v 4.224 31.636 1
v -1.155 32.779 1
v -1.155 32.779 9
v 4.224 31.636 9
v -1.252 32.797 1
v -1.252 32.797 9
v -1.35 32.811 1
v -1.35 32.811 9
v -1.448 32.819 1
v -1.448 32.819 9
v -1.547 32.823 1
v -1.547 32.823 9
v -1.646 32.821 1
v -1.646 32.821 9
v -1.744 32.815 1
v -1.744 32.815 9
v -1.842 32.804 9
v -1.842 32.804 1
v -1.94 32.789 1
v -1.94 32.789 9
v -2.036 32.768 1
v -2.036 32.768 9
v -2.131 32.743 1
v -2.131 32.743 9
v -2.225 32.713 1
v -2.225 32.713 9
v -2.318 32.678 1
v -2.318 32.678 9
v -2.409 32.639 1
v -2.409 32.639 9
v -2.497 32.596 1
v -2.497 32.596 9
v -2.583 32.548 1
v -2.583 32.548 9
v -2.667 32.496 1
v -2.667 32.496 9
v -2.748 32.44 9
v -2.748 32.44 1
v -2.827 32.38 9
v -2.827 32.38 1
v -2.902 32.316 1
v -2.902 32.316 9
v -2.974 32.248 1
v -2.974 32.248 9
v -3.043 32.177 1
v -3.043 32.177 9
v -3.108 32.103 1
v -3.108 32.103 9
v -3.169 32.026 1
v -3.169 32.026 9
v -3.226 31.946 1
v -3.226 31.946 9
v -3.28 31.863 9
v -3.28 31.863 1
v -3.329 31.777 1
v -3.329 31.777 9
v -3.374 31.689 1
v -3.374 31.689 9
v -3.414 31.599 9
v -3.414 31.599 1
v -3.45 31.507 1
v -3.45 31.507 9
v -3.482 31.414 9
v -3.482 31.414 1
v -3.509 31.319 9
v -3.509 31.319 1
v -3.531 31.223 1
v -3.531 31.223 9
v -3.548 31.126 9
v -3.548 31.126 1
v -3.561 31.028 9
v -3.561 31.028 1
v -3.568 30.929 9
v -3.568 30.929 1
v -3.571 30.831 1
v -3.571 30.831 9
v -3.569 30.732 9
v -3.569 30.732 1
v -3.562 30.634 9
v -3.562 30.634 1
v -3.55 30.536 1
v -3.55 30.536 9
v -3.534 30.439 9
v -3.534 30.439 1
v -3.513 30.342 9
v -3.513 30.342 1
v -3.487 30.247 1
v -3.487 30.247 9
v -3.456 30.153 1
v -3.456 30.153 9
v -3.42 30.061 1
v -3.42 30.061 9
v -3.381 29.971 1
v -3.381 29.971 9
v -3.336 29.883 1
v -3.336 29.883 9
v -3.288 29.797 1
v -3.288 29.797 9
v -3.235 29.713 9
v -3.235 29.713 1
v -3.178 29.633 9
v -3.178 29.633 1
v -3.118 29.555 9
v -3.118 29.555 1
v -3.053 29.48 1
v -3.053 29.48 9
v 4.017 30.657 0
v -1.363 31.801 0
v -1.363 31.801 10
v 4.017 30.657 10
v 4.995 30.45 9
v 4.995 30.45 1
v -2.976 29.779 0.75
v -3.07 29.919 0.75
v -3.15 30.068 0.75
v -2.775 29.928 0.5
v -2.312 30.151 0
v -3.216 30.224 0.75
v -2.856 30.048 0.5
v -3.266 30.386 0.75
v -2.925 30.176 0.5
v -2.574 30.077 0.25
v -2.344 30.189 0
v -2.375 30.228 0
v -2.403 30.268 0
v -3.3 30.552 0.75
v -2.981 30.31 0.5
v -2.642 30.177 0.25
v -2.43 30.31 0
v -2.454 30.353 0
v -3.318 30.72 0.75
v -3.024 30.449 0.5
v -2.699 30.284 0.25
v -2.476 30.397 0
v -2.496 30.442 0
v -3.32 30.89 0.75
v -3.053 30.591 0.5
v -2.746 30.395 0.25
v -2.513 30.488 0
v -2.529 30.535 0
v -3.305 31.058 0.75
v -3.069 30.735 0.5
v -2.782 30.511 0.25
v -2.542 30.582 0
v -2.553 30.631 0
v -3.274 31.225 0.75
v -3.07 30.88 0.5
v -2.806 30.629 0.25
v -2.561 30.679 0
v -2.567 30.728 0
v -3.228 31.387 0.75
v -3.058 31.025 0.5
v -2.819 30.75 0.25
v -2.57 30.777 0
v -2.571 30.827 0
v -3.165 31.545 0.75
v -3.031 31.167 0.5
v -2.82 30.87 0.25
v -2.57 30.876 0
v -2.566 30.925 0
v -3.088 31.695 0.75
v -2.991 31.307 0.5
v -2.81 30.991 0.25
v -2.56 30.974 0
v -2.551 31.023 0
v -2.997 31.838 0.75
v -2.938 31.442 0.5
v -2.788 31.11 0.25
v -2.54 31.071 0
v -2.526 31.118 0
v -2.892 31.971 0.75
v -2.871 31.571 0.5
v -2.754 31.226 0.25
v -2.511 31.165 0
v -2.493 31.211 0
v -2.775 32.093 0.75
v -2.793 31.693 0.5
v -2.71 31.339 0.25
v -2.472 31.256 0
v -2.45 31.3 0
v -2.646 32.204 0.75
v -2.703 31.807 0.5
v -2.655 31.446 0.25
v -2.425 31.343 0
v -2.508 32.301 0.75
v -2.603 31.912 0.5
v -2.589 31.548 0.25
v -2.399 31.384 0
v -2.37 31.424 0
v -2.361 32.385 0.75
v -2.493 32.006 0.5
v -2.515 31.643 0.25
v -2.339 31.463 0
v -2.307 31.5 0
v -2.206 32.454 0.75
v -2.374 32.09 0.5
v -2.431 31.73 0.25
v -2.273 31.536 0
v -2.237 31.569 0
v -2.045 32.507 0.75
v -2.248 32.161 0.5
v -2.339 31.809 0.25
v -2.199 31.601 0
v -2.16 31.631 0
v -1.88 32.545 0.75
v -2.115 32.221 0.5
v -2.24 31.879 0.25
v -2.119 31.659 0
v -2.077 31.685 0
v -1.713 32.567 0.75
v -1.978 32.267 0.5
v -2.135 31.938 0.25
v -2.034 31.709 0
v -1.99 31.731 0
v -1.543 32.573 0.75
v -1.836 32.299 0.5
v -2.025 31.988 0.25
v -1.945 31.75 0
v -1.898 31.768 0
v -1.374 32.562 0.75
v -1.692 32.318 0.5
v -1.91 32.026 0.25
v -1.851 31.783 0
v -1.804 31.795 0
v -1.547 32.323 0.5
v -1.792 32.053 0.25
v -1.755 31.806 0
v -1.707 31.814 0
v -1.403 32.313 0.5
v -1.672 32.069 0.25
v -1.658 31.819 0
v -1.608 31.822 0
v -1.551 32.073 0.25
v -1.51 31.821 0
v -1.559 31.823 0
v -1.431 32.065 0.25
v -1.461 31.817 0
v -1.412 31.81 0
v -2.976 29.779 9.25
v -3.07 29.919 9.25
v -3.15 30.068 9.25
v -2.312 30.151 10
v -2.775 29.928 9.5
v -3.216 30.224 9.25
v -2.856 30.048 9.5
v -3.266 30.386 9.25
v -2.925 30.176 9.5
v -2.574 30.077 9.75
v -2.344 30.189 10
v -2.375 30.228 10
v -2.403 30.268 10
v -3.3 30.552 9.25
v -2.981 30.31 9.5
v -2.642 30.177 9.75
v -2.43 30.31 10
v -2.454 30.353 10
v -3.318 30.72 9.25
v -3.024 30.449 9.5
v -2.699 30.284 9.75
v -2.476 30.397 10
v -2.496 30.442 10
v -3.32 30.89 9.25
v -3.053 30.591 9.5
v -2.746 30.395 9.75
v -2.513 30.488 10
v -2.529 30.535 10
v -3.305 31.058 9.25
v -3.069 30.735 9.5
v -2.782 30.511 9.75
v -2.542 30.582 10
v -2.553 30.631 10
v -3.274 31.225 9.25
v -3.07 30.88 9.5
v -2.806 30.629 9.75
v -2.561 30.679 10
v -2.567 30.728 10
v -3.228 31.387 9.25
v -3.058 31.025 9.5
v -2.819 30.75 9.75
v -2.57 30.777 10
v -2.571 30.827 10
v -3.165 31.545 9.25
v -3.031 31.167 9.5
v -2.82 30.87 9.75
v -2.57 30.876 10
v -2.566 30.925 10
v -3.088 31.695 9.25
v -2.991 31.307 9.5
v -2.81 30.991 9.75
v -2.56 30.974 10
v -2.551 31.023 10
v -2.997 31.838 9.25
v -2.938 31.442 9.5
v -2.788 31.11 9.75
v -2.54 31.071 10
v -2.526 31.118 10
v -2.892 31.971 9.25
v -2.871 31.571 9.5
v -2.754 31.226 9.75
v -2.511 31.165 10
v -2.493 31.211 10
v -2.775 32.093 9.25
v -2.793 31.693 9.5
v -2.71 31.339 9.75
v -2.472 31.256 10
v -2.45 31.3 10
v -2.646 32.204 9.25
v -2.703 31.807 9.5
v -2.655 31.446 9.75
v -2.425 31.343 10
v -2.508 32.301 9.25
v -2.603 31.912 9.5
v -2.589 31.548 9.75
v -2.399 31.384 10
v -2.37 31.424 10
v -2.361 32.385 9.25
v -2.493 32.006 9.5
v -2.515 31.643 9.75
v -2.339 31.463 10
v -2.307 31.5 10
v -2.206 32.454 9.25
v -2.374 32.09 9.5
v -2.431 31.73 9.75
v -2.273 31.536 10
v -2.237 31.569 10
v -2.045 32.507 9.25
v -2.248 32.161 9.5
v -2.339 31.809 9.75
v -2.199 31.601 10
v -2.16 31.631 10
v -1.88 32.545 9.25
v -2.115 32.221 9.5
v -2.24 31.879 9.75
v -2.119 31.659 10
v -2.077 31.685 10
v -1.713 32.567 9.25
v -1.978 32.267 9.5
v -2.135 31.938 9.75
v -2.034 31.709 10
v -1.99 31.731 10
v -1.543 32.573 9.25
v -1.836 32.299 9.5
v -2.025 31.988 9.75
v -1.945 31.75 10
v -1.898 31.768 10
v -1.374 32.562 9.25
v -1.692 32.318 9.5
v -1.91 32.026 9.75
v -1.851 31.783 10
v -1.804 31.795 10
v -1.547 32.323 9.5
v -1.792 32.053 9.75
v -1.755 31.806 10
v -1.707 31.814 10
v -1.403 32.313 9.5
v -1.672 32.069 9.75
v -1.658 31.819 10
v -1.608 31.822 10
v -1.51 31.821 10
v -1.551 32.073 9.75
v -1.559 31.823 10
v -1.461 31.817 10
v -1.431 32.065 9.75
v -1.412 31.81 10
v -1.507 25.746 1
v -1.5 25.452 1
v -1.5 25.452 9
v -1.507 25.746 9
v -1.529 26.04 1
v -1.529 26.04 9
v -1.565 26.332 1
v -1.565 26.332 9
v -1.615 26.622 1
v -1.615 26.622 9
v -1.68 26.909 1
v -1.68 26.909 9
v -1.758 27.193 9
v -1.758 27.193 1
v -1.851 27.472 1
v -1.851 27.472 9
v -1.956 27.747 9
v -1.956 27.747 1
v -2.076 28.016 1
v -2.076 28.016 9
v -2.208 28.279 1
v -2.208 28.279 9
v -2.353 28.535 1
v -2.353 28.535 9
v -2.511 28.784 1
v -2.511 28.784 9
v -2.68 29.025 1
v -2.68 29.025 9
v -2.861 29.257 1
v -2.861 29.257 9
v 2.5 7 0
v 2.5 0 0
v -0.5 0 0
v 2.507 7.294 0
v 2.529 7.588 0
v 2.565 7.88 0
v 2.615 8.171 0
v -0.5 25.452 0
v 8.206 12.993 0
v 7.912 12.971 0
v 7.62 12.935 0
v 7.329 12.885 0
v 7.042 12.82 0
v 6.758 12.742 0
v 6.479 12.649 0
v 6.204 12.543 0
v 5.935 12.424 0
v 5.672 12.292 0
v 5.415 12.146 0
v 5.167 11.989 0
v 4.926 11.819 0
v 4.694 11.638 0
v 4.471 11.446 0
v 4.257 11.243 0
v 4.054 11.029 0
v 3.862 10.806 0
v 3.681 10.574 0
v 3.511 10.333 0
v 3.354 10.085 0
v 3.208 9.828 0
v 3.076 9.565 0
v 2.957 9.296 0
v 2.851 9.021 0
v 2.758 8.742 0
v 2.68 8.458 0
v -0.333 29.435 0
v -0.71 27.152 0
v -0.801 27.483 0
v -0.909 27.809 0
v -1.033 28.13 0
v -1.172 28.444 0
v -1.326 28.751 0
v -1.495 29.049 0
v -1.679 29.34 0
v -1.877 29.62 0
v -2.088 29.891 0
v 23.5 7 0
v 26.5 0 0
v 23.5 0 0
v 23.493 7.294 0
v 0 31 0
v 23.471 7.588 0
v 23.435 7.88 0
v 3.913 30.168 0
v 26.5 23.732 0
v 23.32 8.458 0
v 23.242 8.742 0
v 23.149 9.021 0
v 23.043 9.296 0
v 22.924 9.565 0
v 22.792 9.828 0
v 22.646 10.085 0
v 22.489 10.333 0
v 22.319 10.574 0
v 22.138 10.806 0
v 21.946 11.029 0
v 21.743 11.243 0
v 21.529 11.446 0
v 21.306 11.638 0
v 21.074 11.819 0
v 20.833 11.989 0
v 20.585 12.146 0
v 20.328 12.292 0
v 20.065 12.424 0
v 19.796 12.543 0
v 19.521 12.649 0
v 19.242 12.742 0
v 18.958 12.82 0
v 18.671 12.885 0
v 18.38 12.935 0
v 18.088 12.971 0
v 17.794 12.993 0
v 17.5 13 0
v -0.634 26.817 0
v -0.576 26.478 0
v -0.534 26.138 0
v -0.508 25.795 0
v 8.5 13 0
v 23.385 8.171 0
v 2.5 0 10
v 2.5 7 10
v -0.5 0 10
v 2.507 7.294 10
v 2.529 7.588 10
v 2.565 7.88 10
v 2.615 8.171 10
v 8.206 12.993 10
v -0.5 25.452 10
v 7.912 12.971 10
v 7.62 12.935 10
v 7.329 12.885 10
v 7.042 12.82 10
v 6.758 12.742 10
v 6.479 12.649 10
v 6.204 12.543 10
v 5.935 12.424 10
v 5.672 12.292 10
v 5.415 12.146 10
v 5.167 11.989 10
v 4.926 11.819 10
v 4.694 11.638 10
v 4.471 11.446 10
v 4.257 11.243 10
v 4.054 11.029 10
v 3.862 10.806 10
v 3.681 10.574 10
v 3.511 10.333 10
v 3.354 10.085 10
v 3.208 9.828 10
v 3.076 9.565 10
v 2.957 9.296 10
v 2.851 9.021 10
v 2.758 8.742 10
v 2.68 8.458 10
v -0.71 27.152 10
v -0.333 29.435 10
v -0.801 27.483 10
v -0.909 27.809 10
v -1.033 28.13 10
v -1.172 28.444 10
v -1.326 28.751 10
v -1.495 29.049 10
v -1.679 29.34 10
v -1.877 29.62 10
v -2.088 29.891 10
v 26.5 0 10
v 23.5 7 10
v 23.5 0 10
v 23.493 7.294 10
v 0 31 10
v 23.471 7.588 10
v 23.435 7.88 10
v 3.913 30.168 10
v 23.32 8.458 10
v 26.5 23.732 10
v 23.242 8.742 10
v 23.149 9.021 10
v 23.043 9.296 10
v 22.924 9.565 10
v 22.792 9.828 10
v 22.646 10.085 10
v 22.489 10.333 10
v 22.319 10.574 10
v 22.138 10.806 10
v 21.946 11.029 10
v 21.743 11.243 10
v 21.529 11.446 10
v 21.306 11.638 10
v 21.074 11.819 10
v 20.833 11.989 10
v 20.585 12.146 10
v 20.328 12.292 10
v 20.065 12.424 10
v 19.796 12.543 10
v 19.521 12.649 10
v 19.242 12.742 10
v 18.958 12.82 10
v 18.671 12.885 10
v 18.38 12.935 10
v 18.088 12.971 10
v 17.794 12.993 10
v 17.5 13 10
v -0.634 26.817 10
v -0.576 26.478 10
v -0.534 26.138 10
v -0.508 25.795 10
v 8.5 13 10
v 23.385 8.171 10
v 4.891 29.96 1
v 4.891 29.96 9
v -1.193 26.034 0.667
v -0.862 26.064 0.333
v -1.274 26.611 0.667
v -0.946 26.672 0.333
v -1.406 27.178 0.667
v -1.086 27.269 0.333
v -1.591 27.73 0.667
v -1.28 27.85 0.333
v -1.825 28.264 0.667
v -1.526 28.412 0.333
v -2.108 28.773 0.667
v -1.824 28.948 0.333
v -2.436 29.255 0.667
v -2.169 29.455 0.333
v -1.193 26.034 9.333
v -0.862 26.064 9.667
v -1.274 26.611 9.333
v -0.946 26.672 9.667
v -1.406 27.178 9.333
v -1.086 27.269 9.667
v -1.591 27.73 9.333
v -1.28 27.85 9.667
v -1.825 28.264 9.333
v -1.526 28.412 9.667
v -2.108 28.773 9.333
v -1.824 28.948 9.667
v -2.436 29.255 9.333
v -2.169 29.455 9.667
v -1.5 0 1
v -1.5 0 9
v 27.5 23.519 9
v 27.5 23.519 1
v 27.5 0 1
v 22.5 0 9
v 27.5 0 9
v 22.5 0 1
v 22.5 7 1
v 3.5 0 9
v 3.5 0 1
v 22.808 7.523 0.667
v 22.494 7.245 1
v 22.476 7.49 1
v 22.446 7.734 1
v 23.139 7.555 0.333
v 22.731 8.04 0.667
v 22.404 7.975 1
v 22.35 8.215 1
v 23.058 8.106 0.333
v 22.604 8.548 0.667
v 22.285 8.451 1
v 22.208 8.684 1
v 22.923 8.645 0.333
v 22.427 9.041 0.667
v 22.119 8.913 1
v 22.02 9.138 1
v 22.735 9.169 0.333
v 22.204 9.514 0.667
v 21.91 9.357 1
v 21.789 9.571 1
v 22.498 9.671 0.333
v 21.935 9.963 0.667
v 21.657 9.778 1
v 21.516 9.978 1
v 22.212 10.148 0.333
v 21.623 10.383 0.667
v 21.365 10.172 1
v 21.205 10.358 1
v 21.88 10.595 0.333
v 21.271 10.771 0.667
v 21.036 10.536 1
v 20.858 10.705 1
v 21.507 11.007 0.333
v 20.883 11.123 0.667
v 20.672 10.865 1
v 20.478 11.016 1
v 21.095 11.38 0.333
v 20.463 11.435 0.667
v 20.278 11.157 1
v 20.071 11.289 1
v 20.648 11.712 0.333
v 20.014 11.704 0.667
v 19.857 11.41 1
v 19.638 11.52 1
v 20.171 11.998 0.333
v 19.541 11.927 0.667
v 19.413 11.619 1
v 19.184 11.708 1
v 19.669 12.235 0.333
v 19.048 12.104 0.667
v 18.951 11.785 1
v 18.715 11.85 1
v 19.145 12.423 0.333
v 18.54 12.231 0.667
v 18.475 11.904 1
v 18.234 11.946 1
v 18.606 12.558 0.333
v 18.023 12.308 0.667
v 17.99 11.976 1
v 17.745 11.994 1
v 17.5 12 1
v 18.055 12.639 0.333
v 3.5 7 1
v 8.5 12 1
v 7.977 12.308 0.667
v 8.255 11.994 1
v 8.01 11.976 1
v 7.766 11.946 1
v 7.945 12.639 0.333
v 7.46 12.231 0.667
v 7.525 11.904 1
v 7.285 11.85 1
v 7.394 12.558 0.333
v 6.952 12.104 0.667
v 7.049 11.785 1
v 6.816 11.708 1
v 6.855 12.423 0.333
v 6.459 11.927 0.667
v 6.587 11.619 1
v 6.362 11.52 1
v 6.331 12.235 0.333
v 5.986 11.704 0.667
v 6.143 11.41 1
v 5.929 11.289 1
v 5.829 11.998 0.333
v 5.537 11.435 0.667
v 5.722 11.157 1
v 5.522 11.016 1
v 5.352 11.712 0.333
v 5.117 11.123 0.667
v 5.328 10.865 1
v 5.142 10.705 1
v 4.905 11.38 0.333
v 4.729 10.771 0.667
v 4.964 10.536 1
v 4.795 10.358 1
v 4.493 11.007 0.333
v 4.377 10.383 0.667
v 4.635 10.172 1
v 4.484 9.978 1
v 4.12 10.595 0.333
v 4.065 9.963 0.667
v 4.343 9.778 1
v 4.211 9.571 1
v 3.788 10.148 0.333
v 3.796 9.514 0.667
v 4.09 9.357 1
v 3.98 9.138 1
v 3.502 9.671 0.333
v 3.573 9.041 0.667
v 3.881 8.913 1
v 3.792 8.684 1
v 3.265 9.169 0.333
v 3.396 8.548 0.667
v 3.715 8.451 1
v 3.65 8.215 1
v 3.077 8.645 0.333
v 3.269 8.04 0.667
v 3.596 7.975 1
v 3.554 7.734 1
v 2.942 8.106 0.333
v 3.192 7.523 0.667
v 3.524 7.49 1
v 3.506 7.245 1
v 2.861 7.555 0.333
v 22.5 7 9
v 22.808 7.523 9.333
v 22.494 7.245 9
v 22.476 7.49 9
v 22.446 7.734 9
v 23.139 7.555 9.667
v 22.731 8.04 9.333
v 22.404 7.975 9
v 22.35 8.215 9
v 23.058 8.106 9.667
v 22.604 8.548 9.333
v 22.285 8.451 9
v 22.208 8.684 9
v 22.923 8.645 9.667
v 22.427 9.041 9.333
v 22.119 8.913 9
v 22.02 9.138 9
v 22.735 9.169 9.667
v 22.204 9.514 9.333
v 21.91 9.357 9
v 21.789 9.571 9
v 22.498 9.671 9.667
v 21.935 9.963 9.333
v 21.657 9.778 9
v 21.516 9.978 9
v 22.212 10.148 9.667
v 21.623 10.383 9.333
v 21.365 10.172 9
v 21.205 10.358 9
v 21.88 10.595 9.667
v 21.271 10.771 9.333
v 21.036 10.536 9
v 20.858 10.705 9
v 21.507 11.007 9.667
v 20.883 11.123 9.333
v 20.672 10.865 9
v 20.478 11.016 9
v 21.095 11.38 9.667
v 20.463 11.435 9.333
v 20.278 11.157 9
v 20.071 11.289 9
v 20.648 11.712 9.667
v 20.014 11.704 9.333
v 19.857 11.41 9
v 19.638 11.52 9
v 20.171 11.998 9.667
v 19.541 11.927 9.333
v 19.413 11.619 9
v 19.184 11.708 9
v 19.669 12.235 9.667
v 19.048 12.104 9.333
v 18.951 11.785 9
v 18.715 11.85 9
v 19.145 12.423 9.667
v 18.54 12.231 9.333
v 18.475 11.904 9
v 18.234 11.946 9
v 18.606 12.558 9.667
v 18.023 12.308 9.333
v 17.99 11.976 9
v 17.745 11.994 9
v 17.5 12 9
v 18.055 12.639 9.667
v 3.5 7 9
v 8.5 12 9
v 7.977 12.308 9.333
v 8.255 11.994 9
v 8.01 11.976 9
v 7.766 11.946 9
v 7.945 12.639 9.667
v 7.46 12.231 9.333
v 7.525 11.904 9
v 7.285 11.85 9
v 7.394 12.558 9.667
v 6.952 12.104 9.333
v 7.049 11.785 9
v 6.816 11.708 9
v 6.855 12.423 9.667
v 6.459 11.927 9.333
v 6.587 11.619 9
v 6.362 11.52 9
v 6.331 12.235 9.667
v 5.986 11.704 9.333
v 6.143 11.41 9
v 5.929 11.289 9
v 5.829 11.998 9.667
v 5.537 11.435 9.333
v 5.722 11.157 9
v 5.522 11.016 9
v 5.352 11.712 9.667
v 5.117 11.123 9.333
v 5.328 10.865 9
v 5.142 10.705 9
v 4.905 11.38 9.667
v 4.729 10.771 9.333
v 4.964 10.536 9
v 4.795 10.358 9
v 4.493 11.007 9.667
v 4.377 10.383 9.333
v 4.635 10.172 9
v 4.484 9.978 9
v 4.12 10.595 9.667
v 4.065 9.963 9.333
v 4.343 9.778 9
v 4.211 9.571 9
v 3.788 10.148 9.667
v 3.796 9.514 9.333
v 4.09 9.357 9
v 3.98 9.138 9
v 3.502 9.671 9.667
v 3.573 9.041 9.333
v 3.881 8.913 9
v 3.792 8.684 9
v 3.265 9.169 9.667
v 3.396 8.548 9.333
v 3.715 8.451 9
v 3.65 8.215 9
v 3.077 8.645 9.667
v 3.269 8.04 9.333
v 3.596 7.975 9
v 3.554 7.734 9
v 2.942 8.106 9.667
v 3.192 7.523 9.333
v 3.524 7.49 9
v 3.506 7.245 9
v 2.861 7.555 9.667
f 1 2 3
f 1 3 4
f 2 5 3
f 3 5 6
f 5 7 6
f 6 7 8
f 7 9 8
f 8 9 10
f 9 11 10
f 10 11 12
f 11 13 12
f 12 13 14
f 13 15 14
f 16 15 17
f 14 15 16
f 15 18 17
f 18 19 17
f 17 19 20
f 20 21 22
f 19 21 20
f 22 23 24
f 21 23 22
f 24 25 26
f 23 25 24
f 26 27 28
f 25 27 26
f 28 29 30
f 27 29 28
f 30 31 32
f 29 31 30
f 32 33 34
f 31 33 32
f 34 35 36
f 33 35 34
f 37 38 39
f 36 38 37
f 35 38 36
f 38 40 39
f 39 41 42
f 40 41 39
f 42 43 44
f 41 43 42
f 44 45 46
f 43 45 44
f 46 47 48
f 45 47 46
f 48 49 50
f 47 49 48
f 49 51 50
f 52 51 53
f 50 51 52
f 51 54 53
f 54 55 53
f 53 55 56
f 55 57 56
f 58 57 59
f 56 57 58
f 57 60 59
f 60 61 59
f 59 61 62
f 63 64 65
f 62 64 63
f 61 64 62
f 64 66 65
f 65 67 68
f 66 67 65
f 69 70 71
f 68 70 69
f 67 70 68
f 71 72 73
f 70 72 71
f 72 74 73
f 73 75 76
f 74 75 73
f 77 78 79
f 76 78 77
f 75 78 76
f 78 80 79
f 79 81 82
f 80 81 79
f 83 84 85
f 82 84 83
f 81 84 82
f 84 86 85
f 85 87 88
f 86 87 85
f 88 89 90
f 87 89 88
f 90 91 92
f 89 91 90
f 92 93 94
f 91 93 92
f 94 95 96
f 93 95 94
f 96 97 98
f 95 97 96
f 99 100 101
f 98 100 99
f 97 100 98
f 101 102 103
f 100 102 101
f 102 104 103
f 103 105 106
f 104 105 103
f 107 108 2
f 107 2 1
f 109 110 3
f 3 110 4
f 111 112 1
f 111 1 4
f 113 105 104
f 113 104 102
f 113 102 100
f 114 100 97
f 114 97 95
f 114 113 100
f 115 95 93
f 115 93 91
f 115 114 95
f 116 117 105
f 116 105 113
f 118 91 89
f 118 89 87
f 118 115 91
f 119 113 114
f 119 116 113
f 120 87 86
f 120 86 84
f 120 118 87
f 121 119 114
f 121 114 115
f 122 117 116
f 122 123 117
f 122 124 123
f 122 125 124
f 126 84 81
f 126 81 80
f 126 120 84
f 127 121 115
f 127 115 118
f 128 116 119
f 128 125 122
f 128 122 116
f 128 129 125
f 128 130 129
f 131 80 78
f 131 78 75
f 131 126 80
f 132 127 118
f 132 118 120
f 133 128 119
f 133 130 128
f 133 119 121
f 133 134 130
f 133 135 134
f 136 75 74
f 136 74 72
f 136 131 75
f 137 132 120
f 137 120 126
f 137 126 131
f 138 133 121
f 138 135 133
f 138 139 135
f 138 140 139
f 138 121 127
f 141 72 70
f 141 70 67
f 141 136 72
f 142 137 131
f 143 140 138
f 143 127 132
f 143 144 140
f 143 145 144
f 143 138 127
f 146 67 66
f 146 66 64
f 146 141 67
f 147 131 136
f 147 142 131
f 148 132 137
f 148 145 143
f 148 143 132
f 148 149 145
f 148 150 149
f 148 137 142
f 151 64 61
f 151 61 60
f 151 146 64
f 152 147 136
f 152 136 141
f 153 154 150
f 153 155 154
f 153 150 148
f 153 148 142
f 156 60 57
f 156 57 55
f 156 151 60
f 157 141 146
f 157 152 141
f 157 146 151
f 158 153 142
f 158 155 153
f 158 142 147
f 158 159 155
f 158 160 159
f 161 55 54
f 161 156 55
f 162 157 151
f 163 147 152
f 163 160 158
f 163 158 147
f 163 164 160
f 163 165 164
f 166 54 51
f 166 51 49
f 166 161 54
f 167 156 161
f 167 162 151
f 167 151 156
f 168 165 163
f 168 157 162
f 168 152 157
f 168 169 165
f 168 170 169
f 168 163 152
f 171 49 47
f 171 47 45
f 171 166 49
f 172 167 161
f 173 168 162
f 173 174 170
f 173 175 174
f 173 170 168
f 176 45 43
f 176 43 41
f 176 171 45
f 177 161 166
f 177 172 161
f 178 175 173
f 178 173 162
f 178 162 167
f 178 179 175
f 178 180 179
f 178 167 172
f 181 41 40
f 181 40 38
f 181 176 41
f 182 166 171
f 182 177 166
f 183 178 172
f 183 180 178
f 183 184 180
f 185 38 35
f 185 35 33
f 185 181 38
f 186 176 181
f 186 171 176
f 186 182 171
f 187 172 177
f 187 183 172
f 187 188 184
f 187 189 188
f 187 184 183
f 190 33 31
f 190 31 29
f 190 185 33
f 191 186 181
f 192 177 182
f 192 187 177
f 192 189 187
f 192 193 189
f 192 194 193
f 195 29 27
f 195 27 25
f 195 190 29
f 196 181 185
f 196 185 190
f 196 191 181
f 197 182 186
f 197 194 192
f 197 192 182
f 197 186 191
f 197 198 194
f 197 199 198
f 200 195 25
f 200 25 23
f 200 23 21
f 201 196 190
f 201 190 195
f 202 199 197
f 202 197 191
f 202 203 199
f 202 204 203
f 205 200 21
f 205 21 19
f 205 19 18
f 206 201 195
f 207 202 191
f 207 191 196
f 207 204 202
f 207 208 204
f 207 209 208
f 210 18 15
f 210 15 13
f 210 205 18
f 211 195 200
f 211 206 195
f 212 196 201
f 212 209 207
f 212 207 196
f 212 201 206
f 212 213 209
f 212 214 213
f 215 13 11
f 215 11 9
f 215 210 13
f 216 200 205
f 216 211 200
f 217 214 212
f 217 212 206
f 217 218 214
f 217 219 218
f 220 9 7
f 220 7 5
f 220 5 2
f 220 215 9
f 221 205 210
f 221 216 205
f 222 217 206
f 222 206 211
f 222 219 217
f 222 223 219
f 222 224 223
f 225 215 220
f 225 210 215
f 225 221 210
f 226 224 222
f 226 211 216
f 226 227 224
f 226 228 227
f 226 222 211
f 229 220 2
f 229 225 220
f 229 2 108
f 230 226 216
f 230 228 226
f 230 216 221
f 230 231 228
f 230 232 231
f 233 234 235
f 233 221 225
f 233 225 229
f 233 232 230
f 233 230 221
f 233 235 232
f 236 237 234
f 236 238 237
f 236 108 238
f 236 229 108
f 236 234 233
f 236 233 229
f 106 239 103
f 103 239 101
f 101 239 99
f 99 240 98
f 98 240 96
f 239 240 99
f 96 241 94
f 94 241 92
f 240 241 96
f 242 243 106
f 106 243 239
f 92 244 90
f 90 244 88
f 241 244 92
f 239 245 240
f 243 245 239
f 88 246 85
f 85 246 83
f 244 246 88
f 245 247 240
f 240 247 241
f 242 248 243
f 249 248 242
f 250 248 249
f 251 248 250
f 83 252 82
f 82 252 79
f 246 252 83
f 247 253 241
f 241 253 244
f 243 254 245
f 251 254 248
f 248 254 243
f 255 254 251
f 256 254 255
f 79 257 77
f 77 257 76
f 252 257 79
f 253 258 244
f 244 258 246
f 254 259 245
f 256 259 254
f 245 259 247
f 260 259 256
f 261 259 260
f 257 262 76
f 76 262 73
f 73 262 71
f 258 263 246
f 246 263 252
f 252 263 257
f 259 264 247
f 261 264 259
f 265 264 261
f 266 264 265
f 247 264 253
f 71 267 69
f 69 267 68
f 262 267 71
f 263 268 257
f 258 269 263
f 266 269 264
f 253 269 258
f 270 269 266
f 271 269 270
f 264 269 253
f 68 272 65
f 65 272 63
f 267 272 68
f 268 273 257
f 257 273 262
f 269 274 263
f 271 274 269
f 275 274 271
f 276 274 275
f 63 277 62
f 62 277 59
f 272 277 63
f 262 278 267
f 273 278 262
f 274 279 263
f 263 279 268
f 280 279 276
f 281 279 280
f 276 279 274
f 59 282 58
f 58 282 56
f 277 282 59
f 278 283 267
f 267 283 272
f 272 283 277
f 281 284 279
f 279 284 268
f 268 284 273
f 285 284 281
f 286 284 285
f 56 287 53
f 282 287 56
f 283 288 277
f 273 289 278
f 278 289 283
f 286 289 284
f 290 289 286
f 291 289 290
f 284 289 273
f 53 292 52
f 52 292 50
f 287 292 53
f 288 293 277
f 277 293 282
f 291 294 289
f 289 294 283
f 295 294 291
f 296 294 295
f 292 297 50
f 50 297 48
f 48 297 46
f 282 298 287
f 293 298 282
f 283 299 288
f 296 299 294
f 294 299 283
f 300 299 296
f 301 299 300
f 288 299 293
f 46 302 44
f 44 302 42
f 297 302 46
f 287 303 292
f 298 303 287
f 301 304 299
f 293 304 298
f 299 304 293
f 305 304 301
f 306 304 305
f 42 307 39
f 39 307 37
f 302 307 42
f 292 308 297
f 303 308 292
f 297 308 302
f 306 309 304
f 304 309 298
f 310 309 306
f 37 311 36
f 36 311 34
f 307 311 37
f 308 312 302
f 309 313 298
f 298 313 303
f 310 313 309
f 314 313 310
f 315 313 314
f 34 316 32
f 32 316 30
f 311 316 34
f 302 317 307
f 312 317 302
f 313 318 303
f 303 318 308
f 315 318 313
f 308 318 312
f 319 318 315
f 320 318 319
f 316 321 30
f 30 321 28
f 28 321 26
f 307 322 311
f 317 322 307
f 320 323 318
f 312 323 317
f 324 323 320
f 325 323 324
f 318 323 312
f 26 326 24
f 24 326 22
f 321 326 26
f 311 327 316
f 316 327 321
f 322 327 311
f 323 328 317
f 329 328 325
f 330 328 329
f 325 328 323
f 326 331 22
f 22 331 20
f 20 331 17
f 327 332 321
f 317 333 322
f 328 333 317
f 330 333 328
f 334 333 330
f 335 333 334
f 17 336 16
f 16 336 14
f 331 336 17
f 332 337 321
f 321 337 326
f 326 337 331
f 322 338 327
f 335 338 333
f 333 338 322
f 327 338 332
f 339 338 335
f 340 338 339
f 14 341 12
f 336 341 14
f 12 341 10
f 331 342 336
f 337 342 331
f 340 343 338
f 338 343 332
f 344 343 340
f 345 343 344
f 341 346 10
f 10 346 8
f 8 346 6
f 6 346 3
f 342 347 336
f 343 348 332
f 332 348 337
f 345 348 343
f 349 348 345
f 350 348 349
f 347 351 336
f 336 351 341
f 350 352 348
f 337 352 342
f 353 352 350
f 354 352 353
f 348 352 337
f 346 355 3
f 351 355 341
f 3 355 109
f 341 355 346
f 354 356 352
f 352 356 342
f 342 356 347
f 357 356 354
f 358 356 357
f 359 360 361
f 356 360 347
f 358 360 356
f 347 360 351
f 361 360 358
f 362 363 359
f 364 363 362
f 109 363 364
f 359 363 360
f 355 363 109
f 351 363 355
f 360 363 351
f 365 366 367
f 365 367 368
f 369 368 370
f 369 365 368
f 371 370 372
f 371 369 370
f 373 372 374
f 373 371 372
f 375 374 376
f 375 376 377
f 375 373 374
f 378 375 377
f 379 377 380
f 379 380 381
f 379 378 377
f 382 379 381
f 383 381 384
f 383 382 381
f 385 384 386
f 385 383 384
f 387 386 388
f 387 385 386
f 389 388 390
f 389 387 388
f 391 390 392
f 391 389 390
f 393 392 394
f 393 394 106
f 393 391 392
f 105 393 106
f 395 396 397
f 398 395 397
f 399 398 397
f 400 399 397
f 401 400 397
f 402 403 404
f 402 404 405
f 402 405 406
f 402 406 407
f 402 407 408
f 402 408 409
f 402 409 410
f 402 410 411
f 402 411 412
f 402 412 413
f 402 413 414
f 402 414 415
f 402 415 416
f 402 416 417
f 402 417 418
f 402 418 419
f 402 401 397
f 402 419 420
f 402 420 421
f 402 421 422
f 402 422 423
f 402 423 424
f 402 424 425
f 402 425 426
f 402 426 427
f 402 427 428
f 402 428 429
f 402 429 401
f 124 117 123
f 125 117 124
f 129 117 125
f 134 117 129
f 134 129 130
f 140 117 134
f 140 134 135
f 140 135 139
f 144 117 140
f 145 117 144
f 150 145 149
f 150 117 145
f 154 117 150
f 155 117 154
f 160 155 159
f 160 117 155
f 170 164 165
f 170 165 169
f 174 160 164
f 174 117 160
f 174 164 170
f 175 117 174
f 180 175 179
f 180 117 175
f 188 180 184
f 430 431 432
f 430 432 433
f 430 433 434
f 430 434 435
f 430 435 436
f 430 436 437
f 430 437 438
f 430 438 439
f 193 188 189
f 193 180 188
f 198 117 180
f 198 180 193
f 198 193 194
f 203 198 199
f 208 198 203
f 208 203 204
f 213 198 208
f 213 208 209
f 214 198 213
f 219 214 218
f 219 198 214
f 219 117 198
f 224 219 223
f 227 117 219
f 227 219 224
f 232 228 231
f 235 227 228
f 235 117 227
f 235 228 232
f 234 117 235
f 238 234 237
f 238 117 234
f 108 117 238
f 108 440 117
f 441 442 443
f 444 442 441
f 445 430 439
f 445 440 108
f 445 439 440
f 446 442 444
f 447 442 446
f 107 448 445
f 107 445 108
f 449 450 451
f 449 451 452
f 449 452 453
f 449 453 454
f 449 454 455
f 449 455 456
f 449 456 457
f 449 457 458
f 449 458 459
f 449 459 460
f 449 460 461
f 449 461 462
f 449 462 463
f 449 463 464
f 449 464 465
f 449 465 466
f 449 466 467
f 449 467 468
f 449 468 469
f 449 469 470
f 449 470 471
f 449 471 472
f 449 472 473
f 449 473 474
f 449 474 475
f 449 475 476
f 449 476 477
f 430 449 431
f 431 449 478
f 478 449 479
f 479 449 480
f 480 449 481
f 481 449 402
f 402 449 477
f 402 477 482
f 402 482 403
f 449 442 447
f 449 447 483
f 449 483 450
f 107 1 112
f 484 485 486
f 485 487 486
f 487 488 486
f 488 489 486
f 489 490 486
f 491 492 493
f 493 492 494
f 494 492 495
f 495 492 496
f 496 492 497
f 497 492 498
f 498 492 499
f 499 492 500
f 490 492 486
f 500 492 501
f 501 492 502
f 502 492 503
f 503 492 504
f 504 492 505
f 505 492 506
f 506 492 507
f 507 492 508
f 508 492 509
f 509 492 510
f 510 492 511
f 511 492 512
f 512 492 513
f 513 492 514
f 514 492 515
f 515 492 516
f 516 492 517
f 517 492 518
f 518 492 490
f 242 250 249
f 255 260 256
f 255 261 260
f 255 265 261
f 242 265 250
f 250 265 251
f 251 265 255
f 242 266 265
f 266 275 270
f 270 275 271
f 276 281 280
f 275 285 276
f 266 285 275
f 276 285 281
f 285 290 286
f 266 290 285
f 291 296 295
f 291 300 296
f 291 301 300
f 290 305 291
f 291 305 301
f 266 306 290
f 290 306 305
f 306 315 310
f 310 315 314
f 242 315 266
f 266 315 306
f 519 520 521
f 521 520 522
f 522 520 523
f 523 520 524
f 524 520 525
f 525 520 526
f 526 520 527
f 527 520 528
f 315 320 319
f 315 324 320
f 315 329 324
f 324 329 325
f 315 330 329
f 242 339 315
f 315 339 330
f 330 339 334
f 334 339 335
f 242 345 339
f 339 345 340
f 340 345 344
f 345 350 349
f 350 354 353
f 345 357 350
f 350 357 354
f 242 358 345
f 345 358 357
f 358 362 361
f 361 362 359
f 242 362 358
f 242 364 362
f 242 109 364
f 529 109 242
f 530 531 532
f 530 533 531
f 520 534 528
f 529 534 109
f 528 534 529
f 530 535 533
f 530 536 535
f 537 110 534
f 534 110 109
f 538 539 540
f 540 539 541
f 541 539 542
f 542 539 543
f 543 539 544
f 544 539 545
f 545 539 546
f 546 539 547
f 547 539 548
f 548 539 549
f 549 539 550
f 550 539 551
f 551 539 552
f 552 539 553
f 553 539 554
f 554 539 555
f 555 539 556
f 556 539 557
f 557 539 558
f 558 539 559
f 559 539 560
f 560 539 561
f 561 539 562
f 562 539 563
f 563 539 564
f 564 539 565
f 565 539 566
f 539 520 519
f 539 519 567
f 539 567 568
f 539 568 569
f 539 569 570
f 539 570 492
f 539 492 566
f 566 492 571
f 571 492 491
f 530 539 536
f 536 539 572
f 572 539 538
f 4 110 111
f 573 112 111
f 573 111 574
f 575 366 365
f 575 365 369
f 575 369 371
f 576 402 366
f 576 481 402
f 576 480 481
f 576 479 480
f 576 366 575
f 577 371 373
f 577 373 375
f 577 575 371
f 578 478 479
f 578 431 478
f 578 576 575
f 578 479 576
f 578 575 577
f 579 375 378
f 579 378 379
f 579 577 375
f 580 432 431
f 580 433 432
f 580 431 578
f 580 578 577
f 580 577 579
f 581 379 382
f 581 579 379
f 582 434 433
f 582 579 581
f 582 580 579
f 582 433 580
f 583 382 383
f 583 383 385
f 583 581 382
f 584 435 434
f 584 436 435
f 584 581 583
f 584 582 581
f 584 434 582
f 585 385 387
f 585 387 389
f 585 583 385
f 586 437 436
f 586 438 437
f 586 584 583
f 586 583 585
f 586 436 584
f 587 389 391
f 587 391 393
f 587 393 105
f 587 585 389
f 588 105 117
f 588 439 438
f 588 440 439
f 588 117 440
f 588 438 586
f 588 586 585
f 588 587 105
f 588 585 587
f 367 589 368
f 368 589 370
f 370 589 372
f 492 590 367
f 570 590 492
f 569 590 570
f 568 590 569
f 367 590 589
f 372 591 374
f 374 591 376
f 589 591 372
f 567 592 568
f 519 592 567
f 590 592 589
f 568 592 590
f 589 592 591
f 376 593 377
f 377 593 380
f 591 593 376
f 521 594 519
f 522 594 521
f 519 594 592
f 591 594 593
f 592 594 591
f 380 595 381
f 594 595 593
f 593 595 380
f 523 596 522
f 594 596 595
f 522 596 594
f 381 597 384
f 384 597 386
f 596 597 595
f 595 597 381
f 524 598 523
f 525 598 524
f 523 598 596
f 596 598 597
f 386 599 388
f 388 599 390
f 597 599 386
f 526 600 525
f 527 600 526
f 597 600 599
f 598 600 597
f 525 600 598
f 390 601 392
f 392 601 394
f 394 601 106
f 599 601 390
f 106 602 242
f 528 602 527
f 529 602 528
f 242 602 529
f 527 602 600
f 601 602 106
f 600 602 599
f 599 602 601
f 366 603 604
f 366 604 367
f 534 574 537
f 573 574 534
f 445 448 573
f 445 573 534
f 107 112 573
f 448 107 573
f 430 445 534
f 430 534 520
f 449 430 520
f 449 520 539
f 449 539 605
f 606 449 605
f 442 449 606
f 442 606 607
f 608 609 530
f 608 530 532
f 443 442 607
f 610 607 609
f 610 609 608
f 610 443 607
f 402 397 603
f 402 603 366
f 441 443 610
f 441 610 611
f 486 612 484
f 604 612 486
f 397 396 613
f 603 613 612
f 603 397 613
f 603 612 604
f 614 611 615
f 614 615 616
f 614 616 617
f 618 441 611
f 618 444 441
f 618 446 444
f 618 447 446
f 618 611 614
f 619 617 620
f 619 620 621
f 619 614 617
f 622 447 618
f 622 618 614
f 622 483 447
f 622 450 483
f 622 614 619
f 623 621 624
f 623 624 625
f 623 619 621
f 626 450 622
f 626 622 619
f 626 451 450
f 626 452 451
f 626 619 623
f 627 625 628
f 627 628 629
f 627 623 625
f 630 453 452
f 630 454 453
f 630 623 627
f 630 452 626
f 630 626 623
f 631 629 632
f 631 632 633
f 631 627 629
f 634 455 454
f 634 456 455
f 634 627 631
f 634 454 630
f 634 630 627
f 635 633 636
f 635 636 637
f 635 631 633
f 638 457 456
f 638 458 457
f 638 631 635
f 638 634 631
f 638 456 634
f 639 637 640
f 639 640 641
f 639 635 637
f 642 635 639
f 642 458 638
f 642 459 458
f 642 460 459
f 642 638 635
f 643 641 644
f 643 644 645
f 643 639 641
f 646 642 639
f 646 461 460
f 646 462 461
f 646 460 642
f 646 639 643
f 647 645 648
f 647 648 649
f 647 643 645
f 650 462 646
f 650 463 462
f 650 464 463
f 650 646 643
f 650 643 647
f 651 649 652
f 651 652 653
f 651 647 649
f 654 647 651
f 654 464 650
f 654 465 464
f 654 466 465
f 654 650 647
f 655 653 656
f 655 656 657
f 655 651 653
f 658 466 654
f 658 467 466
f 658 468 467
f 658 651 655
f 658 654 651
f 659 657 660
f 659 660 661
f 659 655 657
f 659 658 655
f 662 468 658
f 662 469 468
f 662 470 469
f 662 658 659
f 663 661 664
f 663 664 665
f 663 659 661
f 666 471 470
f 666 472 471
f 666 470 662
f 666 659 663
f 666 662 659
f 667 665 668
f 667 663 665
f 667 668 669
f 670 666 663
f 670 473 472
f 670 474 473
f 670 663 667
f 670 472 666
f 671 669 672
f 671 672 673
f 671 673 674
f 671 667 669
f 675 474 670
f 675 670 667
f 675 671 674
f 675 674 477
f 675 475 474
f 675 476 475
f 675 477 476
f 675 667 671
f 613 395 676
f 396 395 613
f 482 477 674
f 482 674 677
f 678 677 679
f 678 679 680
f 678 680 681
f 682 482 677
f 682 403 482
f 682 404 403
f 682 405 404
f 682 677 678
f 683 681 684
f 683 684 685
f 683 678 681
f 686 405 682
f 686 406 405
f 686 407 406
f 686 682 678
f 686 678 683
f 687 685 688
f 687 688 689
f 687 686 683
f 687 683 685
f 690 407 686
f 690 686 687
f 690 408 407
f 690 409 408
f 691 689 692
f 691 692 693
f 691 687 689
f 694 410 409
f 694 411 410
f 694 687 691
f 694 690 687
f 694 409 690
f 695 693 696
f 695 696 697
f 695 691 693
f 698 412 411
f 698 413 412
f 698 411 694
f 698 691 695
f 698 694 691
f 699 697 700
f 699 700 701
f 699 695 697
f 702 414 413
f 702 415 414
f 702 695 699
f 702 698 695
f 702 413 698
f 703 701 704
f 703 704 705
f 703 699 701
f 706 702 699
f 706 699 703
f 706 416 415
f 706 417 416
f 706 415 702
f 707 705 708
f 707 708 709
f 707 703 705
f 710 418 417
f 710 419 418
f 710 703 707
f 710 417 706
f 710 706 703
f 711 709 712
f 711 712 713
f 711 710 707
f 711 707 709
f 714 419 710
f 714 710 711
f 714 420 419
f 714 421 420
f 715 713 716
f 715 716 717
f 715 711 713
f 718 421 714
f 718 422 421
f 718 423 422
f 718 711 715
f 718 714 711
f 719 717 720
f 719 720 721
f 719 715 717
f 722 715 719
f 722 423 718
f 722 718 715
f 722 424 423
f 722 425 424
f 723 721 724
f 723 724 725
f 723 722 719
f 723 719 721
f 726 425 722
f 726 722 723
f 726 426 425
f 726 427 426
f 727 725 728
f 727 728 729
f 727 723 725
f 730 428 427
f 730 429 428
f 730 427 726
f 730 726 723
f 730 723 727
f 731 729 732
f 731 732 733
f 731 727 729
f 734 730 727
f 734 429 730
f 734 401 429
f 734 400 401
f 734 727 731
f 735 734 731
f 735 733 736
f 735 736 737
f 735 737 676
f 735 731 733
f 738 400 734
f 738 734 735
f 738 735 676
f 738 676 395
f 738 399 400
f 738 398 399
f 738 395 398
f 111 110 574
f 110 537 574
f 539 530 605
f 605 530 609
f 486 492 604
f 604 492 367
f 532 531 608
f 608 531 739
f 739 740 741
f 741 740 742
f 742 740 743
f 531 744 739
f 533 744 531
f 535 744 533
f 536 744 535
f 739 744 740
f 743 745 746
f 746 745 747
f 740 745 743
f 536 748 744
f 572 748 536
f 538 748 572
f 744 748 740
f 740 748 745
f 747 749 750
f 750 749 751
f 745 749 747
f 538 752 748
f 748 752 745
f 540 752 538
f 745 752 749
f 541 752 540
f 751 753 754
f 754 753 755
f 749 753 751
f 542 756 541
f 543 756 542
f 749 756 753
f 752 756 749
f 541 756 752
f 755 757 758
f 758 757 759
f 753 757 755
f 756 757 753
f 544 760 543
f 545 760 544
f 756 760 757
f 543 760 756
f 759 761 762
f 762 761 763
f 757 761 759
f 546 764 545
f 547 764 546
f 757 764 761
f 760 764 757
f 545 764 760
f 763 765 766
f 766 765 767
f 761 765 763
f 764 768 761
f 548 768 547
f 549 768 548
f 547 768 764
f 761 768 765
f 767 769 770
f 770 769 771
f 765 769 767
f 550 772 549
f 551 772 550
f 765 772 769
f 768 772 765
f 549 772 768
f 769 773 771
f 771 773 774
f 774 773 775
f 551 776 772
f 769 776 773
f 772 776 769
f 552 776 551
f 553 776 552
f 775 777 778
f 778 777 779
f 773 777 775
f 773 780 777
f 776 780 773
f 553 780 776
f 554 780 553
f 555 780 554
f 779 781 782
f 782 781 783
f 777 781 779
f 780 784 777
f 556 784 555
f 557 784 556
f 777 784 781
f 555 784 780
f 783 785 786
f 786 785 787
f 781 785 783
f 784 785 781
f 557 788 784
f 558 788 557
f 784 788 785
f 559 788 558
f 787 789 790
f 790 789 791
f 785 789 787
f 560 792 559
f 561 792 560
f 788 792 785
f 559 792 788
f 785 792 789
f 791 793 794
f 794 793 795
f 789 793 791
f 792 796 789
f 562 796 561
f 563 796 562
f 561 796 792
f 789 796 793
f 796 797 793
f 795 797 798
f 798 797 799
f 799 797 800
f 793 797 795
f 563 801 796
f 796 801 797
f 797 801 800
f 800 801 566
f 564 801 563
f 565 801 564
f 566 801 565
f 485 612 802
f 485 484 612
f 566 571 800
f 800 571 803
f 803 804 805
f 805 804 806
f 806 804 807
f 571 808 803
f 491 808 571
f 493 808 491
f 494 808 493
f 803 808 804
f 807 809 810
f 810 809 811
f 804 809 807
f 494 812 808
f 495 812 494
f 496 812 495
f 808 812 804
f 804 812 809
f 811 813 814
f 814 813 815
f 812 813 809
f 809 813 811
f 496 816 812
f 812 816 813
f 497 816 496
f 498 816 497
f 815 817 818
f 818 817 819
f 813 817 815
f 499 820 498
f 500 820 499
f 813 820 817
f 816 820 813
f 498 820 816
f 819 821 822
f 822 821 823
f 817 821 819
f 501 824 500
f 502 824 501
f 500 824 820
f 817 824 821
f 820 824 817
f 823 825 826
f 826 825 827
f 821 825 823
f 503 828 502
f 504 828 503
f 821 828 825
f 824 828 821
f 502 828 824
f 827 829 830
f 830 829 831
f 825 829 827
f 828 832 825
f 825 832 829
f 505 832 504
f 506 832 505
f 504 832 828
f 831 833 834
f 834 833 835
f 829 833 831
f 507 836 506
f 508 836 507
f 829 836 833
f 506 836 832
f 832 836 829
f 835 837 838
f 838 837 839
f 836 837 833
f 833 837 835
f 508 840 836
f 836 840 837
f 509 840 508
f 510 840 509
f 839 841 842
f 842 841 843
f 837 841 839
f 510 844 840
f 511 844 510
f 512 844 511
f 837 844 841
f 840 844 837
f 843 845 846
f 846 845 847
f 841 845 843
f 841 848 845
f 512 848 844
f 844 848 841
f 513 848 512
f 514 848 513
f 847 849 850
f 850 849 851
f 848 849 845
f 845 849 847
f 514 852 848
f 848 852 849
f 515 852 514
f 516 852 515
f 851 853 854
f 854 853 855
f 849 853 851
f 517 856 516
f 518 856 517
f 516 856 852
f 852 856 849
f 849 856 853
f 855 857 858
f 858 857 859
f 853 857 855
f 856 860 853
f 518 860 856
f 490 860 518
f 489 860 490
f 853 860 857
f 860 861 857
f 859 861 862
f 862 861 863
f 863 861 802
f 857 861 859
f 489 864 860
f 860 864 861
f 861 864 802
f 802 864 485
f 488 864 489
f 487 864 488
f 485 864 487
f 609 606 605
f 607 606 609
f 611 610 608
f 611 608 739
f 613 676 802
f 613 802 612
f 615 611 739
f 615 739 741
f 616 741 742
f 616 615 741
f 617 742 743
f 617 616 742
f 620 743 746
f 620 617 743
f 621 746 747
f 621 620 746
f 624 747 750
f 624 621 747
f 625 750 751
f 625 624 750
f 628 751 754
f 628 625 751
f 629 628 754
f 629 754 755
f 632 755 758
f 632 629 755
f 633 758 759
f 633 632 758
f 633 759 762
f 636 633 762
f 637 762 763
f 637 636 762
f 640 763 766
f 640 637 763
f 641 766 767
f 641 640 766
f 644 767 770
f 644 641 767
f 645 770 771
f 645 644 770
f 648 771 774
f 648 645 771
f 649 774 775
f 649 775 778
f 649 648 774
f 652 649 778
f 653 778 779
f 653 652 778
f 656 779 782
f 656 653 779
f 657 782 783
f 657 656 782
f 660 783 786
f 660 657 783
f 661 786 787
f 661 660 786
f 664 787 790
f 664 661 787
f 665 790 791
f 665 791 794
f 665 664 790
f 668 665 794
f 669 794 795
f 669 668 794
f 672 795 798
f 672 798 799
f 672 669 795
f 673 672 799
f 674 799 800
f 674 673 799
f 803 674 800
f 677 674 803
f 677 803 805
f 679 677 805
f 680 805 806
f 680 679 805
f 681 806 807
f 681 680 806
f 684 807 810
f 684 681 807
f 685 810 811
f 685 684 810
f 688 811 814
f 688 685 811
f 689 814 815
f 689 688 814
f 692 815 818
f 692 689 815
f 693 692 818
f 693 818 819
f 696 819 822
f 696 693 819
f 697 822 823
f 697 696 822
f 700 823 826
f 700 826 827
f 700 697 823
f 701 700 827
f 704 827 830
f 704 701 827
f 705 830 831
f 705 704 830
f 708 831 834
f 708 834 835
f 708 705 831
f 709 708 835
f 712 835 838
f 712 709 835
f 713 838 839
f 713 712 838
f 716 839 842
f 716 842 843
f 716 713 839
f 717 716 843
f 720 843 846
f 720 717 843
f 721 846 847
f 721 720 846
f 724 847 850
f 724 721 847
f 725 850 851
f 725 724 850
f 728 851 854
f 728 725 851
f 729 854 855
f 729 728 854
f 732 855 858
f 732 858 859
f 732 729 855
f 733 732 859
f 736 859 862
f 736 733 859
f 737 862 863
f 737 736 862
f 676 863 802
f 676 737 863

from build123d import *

# Parameters (mm, degrees)
PAD_DEPTH            = 10
CHAMFER_SIZE         = 1
BODY_PLACEMENT_ANGLE = 270


with BuildPart() as part:
    # Sketch (on XZ_Plane of Origin) → Pad (new body)
    with BuildSketch(Plane.XZ):
        with BuildLine():
            Line((-1.5, 0), (-1.5, 25.451662))
            ThreePointArc((-1.5, 25.451662), (-1.901799, 27.610399), (-3.053383, 29.480011))
            ThreePointArc((-1.155354, 32.779089), (-3.304749, 31.820154), (-3.053383, 29.480011))
            Line((-1.155354, 32.779089), (5.202606, 31.427663))
            Line((5.202606, 31.427663), (4.890738, 29.960442))
            Line((4.890738, 29.960442), (0, 31))
            Line((0, 31), (-0.332659, 29.434964))
            Line((-0.332659, 29.434964), (27.5, 23.51895))
            Line((27.5, 23.51895), (27.5, 0))
            Line((27.5, 0), (22.5, 0))
            Line((22.5, 0), (22.5, 7))
            ThreePointArc((22.5, 7), (21.035534, 10.535534), (17.5, 12))
            Line((17.5, 12), (8.5, 12))
            ThreePointArc((8.5, 12), (4.964466, 10.535534), (3.5, 7))
            Line((3.5, 7), (3.5, 0))
            Line((3.5, 0), (-1.5, 0))
        make_face()
    extrude(amount=PAD_DEPTH)

    # Chamfer
    chamfer_edges = [part.edges().sort_by_distance(p)[0] for p in [
        (-1.5, -10, 12.725831),
        (3.5, -10, 3.5),
        (27.5, -10, 11.759475),
        (27.5, 0, 11.759475),
        (-1.5, 0, 12.725831),
        (22.5, 0, 3.5),
        (5.202606, -5, 31.427663),
        (5.046672, 0, 30.694052),
        (5.046672, -10, 30.694052),
    ]]
    chamfer(chamfer_edges, length=CHAMFER_SIZE)


with BuildPart() as part_1:
    # Body placement: moved
    add(part.part.rotate(Axis((0, 0, 0), (1, 0, 0)), BODY_PLACEMENT_ANGLE))


solid = part_1.part
